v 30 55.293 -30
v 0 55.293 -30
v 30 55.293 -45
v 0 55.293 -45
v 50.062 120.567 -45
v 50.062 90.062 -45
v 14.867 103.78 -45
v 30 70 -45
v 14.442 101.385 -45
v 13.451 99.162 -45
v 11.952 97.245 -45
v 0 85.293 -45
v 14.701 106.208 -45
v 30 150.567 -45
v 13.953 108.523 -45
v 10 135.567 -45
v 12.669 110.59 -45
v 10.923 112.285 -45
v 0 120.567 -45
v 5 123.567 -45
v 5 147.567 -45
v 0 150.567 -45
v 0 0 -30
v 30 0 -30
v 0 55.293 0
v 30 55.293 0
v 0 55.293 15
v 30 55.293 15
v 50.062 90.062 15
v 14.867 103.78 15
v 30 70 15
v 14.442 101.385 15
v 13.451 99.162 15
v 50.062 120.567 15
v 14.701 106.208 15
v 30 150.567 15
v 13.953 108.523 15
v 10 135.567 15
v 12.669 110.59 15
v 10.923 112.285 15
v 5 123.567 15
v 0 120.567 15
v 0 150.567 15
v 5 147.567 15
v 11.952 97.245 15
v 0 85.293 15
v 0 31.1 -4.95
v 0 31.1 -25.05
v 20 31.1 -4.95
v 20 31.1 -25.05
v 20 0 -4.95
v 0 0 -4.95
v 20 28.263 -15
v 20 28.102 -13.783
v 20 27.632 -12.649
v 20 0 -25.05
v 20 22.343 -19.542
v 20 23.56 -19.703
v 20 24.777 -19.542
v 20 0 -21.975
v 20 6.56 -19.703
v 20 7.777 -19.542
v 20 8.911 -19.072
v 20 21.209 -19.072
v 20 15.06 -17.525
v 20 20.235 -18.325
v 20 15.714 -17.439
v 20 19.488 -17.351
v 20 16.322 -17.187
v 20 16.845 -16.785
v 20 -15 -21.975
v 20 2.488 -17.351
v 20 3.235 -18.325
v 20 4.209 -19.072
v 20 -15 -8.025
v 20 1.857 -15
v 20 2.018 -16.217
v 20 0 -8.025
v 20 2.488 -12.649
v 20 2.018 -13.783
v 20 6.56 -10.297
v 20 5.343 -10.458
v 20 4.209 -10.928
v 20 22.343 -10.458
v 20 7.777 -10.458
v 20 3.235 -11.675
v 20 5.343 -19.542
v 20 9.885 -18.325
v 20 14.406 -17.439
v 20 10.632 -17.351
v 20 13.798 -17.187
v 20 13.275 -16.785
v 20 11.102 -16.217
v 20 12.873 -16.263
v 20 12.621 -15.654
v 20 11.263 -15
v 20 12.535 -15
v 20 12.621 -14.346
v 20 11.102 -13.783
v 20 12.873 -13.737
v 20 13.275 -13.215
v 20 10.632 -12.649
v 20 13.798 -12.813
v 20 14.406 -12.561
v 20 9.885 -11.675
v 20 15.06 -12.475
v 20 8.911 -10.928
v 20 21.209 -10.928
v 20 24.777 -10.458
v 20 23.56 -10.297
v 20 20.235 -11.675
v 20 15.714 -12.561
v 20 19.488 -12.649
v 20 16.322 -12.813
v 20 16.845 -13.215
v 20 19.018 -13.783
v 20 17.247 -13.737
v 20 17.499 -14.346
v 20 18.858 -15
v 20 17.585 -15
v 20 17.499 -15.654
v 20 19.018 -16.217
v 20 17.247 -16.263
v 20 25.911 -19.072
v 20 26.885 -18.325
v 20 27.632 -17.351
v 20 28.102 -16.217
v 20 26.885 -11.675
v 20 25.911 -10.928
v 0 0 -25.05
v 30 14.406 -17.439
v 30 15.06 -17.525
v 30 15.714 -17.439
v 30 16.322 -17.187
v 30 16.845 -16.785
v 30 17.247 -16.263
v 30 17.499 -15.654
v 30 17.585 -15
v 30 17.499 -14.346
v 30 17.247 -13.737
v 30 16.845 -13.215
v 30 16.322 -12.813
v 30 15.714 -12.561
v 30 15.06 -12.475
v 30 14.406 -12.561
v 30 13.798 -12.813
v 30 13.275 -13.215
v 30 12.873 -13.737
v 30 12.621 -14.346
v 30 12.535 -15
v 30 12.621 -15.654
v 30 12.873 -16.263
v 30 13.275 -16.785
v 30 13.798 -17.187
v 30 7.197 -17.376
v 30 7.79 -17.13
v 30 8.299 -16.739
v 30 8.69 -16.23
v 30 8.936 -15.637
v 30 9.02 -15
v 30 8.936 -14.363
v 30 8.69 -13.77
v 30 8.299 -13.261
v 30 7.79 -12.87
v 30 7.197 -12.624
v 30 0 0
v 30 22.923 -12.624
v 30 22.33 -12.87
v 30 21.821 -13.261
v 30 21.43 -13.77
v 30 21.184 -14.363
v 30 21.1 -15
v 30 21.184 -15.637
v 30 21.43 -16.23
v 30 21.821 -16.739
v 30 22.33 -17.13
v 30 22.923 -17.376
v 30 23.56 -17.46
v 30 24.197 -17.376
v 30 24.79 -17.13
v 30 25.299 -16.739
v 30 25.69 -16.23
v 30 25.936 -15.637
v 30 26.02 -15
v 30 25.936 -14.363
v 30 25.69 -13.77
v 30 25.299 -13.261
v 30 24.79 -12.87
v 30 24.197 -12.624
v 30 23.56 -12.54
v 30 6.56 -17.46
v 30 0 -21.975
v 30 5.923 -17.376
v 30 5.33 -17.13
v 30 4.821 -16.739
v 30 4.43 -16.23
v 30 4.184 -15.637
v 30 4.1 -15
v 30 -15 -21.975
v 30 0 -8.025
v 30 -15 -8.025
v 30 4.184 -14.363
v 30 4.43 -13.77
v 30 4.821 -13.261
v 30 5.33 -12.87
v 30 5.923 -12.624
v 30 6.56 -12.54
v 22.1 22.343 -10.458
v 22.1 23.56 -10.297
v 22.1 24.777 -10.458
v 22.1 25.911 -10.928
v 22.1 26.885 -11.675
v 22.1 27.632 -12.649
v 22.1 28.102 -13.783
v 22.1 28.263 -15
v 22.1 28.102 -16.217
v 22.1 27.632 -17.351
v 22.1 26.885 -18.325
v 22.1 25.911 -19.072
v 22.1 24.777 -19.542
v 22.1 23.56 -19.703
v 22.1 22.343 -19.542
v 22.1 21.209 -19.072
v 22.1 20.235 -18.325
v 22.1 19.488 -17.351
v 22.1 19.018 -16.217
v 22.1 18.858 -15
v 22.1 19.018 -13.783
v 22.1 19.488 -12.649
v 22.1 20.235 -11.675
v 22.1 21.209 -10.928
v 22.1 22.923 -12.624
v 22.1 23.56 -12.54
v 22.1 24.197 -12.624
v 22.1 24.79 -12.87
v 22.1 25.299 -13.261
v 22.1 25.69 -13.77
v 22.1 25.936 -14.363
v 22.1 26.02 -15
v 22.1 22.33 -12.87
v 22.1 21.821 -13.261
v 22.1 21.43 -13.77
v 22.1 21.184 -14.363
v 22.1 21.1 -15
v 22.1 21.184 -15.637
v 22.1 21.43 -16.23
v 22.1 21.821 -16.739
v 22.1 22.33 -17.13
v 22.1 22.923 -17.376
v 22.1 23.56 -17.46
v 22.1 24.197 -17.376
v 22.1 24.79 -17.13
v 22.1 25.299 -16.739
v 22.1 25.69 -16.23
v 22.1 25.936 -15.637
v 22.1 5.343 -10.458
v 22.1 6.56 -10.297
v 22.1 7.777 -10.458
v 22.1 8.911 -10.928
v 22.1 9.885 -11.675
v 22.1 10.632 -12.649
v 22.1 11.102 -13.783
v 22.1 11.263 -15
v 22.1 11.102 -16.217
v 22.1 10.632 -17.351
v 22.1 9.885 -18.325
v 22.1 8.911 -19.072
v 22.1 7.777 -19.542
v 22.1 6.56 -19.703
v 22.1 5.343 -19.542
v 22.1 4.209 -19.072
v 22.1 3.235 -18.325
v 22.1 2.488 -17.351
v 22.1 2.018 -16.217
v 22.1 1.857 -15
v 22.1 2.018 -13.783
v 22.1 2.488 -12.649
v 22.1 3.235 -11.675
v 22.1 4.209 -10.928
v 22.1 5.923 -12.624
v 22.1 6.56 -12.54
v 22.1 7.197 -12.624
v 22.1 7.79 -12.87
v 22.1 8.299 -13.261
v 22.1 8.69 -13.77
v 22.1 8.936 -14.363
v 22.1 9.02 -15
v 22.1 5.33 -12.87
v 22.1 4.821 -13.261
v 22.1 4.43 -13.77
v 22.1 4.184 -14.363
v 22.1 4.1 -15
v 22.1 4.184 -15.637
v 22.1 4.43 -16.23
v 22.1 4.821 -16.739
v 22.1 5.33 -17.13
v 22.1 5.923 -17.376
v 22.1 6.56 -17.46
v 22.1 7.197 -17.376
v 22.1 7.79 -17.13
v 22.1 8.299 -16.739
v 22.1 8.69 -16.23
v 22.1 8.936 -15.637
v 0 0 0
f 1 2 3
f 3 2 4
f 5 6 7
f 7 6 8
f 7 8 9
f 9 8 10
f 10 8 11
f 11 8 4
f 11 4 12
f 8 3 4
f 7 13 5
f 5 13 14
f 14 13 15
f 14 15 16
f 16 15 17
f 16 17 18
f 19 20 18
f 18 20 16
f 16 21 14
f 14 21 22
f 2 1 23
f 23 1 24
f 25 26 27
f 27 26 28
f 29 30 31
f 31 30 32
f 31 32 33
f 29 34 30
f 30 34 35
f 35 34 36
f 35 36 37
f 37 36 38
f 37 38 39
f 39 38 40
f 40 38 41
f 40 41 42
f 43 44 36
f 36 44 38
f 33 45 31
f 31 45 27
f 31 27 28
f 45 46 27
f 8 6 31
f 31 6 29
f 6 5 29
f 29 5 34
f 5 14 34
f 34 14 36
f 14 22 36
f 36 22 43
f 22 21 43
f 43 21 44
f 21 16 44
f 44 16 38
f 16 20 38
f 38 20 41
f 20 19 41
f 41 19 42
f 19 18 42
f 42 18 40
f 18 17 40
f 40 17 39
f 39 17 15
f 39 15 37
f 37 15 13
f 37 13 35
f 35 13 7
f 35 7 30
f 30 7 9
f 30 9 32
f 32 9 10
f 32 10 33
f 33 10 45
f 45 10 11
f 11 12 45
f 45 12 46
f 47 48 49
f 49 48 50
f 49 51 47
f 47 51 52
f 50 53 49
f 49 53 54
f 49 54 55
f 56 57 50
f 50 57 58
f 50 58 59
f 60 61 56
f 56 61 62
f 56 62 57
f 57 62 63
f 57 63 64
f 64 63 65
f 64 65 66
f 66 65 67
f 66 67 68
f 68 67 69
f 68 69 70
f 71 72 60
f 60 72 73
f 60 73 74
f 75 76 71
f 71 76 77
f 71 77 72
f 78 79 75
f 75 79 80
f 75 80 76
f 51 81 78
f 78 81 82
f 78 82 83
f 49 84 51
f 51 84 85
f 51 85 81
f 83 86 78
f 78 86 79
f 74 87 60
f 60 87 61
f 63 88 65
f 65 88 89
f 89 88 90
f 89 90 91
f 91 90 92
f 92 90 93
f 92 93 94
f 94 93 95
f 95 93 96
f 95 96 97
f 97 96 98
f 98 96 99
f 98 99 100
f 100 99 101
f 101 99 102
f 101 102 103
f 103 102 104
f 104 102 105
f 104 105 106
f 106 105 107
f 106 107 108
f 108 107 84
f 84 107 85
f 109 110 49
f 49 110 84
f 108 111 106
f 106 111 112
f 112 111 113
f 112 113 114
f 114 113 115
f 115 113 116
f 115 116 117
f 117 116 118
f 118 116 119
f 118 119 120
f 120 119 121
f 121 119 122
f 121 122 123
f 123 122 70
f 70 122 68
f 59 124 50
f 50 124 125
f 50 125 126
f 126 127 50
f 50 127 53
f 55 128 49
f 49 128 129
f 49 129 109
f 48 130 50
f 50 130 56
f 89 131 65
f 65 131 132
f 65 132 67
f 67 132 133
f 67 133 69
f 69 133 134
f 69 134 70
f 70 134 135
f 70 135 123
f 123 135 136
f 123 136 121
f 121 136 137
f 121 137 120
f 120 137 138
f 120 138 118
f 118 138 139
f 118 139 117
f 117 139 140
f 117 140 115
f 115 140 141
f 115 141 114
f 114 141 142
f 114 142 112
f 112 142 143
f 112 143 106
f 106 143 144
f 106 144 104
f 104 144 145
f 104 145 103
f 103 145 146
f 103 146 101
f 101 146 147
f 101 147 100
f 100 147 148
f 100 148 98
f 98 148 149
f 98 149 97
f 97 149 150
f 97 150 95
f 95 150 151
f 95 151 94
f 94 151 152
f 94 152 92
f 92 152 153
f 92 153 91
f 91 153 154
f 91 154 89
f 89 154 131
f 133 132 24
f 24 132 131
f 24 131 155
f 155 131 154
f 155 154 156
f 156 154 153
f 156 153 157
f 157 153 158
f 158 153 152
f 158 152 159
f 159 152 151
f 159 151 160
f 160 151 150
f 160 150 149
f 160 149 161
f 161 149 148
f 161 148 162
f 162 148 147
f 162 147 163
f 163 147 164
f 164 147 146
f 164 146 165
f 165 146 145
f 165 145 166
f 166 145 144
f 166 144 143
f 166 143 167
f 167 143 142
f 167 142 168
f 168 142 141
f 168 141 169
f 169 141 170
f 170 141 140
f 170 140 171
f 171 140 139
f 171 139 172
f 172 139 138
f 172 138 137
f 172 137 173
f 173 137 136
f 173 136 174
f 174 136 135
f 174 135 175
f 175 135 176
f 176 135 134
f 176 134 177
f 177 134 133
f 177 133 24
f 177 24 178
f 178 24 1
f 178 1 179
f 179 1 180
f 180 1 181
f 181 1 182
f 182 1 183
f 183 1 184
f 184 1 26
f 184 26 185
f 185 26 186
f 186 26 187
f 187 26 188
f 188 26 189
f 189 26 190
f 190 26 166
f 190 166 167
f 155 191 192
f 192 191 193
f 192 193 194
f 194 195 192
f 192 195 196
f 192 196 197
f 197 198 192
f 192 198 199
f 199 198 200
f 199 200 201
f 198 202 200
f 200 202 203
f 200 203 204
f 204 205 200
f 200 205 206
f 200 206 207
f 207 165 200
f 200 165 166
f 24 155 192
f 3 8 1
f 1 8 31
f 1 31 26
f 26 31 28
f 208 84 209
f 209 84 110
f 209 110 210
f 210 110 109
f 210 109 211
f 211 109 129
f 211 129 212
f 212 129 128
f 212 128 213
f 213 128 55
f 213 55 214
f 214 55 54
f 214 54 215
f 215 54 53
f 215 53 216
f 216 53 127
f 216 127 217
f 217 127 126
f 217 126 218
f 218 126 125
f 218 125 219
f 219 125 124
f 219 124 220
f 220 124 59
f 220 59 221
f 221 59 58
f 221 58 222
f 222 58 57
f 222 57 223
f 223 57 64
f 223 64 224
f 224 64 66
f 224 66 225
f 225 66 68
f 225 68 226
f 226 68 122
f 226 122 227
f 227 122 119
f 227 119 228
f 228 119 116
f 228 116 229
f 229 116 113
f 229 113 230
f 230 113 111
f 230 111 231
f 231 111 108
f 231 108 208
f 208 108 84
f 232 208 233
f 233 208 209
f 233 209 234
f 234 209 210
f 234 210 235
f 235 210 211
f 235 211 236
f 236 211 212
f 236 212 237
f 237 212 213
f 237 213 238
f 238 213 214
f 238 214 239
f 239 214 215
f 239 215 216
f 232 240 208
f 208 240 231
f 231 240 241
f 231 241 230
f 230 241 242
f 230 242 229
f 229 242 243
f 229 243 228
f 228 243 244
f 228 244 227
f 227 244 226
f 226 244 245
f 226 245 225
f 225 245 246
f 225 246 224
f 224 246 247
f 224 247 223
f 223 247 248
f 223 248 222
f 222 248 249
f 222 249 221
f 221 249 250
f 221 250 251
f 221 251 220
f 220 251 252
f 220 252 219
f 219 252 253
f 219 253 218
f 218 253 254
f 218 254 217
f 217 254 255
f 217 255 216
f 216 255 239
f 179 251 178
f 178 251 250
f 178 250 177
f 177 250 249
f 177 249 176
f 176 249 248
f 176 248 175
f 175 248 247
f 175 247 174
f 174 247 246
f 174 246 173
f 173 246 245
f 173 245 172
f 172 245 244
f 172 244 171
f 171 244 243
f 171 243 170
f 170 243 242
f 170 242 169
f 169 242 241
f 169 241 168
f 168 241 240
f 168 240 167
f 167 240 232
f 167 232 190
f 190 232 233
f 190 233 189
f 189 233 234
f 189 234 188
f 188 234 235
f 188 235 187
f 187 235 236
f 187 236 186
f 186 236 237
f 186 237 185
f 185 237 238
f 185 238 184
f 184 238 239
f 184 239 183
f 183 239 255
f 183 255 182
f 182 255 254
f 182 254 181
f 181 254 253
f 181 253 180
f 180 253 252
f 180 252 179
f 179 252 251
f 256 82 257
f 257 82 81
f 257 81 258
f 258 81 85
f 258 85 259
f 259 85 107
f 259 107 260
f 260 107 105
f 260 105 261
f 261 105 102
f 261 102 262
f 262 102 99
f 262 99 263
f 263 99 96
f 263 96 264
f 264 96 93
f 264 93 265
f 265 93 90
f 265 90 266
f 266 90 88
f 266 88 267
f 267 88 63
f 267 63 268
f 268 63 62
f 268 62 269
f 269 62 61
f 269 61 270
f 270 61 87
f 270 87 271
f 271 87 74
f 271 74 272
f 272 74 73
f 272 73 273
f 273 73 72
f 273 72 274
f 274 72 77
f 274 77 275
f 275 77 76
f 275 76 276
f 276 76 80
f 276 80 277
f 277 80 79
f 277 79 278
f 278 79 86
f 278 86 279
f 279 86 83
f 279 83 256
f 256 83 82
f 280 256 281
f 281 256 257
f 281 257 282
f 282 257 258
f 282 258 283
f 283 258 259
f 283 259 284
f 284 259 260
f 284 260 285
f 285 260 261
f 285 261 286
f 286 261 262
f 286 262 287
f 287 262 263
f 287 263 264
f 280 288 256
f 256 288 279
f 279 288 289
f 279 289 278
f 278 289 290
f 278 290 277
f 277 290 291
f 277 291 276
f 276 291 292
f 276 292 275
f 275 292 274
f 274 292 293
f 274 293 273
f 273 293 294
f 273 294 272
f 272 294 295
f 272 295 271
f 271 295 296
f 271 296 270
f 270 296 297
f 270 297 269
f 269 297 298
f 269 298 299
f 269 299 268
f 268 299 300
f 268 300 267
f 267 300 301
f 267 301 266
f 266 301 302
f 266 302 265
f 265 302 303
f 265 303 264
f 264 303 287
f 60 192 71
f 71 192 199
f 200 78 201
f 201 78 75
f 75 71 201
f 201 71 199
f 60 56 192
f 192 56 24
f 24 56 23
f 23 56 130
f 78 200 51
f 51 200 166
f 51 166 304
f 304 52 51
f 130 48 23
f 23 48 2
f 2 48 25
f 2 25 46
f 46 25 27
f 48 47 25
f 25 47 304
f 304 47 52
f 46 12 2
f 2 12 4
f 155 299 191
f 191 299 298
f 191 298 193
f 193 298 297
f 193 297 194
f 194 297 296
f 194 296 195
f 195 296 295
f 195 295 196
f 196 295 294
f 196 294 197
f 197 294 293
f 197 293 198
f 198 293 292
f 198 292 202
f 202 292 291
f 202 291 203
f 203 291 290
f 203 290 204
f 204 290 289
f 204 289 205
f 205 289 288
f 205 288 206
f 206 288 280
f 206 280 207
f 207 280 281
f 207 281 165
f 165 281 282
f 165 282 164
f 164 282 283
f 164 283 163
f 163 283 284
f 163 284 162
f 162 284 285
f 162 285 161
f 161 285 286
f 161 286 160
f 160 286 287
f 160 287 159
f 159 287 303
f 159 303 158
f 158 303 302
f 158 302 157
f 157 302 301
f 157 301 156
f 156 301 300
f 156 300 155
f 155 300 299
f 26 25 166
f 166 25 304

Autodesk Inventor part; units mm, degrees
ref_plane "YZ Plane" through (0, 0, 0) normal (1, 0, 0) x (0, 1, 0)
ref_plane "XZ Plane" through (0, 0, 0) normal (0, 1, 0) x (-1, 0, 0)
sketch "Sketch1" plane through (0, 0, 0) normal (0, 0, 1) x (1, 0, 0)
  line L0 (0, 0) -> (25, 0)
  line L1 (25, 0) -> (25, 40)
  line L2 (25, 40) -> (0, 40)
  line L3 (0, 40) -> (0, 0)
  dimension "d1" = 25
  dimension "d2" = 40
  dimension "d3" = 25
extrude "Extrusion1" add sketch "Sketch1" against normal blind 30
sketch "Sketch2" plane through (25, 0, 0) normal (1, 0, 0) x (0, 0, -1)
  line L0 (0, 0) -> (30, 0) projected
  circle A0 centre (15, 6.56) radius 2.46
extrude "Extrusion2" cut sketch "Sketch2" against normal blind 30
sketch "Sketch3" plane through (0, 0, 0) normal (-1, 0, 0) x (0, 0, 1)
  line L0 (0, 0) -> (-30, 0) projected
  line L1 (-25.05, 0) -> (-4.95, 0)
  line L2 (-4.95, 0) -> (-4.95, 33.12)
  line L3 (-4.95, 33.12) -> (-25.05, 33.12)
  line L4 (-25.05, 33.12) -> (-25.05, 0)
  dimension "d11" = 20.1
extrude "Extrusion3" cut sketch "Sketch3" against normal blind 20
sketch "Sketch4" plane through (0, 0, 0) normal (0, -1, 0) x (1, 0, 0)
  line L0 (20, -4.95) -> (20, -25.05) projected
  line L1 (20, -15) -> (25, -15)
  line L2 (25, 0) -> (25, -30) projected
  line L3 (20, -8.025) -> (25, -8.025)
  line L4 (25, -8.025) -> (25, -21.975)
  line L5 (25, -21.975) -> (20, -21.975)
  line L6 (20, -21.975) -> (20, -8.025)
  line L7 (20, -8.025) -> (25, -21.975) construction
  line L8 (25, -8.025) -> (20, -21.975) construction
  line L9 (25, -12.54) -> (25, -17.46) projected
  point P0 (0, 0)
  point P1 (22.5, -15)
  dimension "d14" = 13.95
extrude "Extrusion4" add sketch "Sketch4" along normal blind 15
sketch "Sketch5" plane through (20, 0, 0) normal (-1, 0, 0) x (0, 0, 1)
  circle A0 centre (-15, 6.56) radius 2.46 projected
  circle A1 centre (-15, 6.56) radius 4.7025
  circle A2 centre (-15, 6.56) radius 2.46 projected
  circle A3 centre (-15, 6.56) radius 2.46
  point P0 (0, 0)
  dimension "d17" = 9.405
extrude "Extrusion5" cut sketch "Sketch5" against normal blind 2.1
sketch "Sketch6" plane through (25, 0, 0) normal (1, 0, 0) x (0, 0, -1)
  circle A0 centre (15, 6.56) radius 4.7025 projected
  line L0 (15, 6.56) -> (15, 23.56)
  circle A1 centre (15, 23.56) radius 2.46
  point P0 (0, 0)
  dimension "d20" = 17
  dimension "d21" = 4.92
extrude "Extrusion6" cut sketch "Sketch6" against normal blind 10 contours A1
sketch "Sketch7" plane through (20, 0, 0) normal (-1, 0, 0) x (0, 0, 1)
  circle A0 centre (-15, 23.56) radius 2.46 projected
  circle A1 centre (-15, 23.56) radius 4.7025
  point P0 (0, 0)
  dimension "d24" = 9.405
extrude "Extrusion7" cut sketch "Sketch7" against normal blind 2.1
sketch "Sketch9" plane through (25, 0, 0) normal (1, 0, 0) x (0, 0, -1)
  circle A0 centre (15, 6.56) radius 2.46 projected
  circle A1 centre (15, 6.56) radius 2.46
  circle A2 centre (15, 23.56) radius 2.46 projected
  circle A3 centre (15, 23.56) radius 2.46
  line L0 (30, 40) -> (30, 0) projected
  line L1 (30, 0) -> (30, 40)
  line L2 (30, 40) -> (0, 40)
  line L3 (0, 40) -> (0, 0)
  line L4 (0, 0) -> (8.025, 0) projected
  line L5 (21.975, 0) -> (21.975, -15)
  line L6 (21.975, -15) -> (8.025, -15)
  line L7 (8.025, -15) -> (8.025, 0)
  line L8 (0, 0) -> (8.025, 0)
  line L9 (21.975, 0) -> (30, 0)
extrude "Extrusion8" add sketch "Sketch9" along normal blind 5
sketch "Sketch10" plane through (0, 40, 0) normal (0, 1, 0) x (1, 0, 0)
  line L0 (0, 30) -> (30, 30) projected
  line L1 (30, 0) -> (0, 0) projected
  line L2 (0, 30) -> (30, 30)
  line L3 (30, 30) -> (30, 0)
  line L4 (30, 0) -> (0, 0)
  line L5 (0, 0) -> (0, 30)
extrude "Extrusion9" add sketch "Sketch10" along normal blind 30
sketch "Sketch12" plane through (30, 0, 0) normal (1, 0, 0) x (0, 0, -1)
  circle A0 centre (15, 6.56) radius 2.46 projected
  line L0 (15, 6.56) -> (15, 15.06)
  circle A1 centre (15, 15.06) radius 2.525
  point P0 (0, 0)
  dimension "d31" = 8.5
  dimension "d33" = 5.05
extrude "Extrusion10" cut sketch "Sketch12" against normal blind 30 contours A1
sketch "Sketch15" plane through (0, 0, -25.05) normal (-1, 0, 0) x (0, 0, 1)
  line L0 (0, 33.12) -> (20.1, 33.12) projected
  line L1 (20.1, 33.12) -> (20.1, 0) projected
  line L2 (0, 33.12) -> (20.1, 33.12)
  line L3 (20.1, 33.12) -> (20.1, 31.1)
  line L4 (20.1, 31.1) -> (0, 31.1)
  line L5 (0, 31.1) -> (0, 33.12)
  point P0 (25.05, 0)
  dimension "d57" = 2.02
extrude "Extrusion13" add sketch "Sketch15" against normal blind 20
sketch "Sketch17" plane through (0, 0, 0) normal (0, 0, 1) x (1, 0, 0)
  line L0 (0, 70) -> (30, 70) projected
  line L1 (30, 70) -> (50.0622, 90.0622)
  line L2 (30, 70) -> (80, 70) construction
  line L3 (11.9522, 97.2454) -> (0, 85.2932)
  line L4 (0, 70) -> (0, 85.2932)
  line L5 (0, 70) -> (0, 0) projected
  line L6 (0, 70) -> (30, 70)
  line L7 (10.923, 112.2849) -> (0, 120.567)
  line L8 (50.0622, 105.3553) -> (50.0622, 120.567)
  line L9 (50.0622, 105.3553) -> (50.0622, 90.0622)
  arc A0 (11.9522, 97.2454) -> (10.923, 112.2849) centre (4.8811, 104.3165) ccw
  line L10 (0, 150.567) -> (30, 150.567)
  line L11 (30, 150.567) -> (50.0622, 120.567)
  line L12 (5, 147.567) -> (0, 150.567)
  line L13 (5, 123.567) -> (0, 120.567)
  line L14 (5, 123.567) -> (10, 135.567)
  line L15 (10, 135.567) -> (5, 147.567)
  dimension "d61" = 45
  dimension "d62" = 32.0271
  dimension "d72" = 10
extrude "Extrusion14" add sketch "Sketch17" against normal blind 30
sketch "Sketch22" plane through (0, 0, 0) normal (0, 0, 1) x (1, 0, 0)
  line L0 (30, 0) -> (30, 70) projected
  line L1 (50.0622, 120.567) -> (50.0622, 90.0622) projected
  line L2 (30, 70) -> (50.0622, 90.0622)
  line L3 (50.0622, 90.0622) -> (50.0622, 120.567)
  line L4 (50.0622, 120.567) -> (30, 150.567) projected
  line L5 (50.0622, 120.567) -> (30, 150.567)
  line L6 (30, 150.567) -> (0, 150.567) projected
  line L7 (30, 150.567) -> (0, 150.567)
  line L8 (0, 150.567) -> (5, 147.567) projected
  line L9 (0, 150.567) -> (5, 147.567)
  line L10 (5, 147.567) -> (10, 135.567) projected
  line L11 (5, 147.567) -> (10, 135.567)
  line L12 (5, 123.567) -> (10, 135.567) projected
  line L13 (10, 135.567) -> (5, 123.567)
  line L14 (5, 123.567) -> (0, 120.567) projected
  line L15 (5, 123.567) -> (0, 120.567)
  line L16 (10.923, 112.2849) -> (0, 120.567) projected
  line L17 (0, 120.567) -> (10.923, 112.2849)
  line L18 (0, 85.2932) -> (11.9522, 97.2454) projected
  line L19 (11.9522, 97.2454) -> (0, 85.2932)
  line L20 (0, 85.2932) -> (0, 55.2932)
  line L21 (0, 0) -> (0, 85.2932) projected
  line L22 (0, 55.2932) -> (30, 55.2932)
  line L23 (30, 55.2932) -> (30, 70)
  arc A0 (11.9522, 97.2454) -> (10.923, 112.2849) centre (4.8811, 104.3165) ccw projected
  arc A1 (11.9522, 97.2454) -> (10.923, 112.2849) centre (4.8811, 104.3165) ccw
  dimension "d87" = 30
extrude "Extrusion15" add sketch "Sketch22" along normal blind 15
ref_plane "Work Plane1" through (0, 0, -15) normal (0, 0, 1) x (1, 0, 0)
mirror "Mirror1" about plane through (0, 0, -15) normal (0, 0, 1) of "Extrusion15"
properties part number "rec_c_24mm_x_60mm"
